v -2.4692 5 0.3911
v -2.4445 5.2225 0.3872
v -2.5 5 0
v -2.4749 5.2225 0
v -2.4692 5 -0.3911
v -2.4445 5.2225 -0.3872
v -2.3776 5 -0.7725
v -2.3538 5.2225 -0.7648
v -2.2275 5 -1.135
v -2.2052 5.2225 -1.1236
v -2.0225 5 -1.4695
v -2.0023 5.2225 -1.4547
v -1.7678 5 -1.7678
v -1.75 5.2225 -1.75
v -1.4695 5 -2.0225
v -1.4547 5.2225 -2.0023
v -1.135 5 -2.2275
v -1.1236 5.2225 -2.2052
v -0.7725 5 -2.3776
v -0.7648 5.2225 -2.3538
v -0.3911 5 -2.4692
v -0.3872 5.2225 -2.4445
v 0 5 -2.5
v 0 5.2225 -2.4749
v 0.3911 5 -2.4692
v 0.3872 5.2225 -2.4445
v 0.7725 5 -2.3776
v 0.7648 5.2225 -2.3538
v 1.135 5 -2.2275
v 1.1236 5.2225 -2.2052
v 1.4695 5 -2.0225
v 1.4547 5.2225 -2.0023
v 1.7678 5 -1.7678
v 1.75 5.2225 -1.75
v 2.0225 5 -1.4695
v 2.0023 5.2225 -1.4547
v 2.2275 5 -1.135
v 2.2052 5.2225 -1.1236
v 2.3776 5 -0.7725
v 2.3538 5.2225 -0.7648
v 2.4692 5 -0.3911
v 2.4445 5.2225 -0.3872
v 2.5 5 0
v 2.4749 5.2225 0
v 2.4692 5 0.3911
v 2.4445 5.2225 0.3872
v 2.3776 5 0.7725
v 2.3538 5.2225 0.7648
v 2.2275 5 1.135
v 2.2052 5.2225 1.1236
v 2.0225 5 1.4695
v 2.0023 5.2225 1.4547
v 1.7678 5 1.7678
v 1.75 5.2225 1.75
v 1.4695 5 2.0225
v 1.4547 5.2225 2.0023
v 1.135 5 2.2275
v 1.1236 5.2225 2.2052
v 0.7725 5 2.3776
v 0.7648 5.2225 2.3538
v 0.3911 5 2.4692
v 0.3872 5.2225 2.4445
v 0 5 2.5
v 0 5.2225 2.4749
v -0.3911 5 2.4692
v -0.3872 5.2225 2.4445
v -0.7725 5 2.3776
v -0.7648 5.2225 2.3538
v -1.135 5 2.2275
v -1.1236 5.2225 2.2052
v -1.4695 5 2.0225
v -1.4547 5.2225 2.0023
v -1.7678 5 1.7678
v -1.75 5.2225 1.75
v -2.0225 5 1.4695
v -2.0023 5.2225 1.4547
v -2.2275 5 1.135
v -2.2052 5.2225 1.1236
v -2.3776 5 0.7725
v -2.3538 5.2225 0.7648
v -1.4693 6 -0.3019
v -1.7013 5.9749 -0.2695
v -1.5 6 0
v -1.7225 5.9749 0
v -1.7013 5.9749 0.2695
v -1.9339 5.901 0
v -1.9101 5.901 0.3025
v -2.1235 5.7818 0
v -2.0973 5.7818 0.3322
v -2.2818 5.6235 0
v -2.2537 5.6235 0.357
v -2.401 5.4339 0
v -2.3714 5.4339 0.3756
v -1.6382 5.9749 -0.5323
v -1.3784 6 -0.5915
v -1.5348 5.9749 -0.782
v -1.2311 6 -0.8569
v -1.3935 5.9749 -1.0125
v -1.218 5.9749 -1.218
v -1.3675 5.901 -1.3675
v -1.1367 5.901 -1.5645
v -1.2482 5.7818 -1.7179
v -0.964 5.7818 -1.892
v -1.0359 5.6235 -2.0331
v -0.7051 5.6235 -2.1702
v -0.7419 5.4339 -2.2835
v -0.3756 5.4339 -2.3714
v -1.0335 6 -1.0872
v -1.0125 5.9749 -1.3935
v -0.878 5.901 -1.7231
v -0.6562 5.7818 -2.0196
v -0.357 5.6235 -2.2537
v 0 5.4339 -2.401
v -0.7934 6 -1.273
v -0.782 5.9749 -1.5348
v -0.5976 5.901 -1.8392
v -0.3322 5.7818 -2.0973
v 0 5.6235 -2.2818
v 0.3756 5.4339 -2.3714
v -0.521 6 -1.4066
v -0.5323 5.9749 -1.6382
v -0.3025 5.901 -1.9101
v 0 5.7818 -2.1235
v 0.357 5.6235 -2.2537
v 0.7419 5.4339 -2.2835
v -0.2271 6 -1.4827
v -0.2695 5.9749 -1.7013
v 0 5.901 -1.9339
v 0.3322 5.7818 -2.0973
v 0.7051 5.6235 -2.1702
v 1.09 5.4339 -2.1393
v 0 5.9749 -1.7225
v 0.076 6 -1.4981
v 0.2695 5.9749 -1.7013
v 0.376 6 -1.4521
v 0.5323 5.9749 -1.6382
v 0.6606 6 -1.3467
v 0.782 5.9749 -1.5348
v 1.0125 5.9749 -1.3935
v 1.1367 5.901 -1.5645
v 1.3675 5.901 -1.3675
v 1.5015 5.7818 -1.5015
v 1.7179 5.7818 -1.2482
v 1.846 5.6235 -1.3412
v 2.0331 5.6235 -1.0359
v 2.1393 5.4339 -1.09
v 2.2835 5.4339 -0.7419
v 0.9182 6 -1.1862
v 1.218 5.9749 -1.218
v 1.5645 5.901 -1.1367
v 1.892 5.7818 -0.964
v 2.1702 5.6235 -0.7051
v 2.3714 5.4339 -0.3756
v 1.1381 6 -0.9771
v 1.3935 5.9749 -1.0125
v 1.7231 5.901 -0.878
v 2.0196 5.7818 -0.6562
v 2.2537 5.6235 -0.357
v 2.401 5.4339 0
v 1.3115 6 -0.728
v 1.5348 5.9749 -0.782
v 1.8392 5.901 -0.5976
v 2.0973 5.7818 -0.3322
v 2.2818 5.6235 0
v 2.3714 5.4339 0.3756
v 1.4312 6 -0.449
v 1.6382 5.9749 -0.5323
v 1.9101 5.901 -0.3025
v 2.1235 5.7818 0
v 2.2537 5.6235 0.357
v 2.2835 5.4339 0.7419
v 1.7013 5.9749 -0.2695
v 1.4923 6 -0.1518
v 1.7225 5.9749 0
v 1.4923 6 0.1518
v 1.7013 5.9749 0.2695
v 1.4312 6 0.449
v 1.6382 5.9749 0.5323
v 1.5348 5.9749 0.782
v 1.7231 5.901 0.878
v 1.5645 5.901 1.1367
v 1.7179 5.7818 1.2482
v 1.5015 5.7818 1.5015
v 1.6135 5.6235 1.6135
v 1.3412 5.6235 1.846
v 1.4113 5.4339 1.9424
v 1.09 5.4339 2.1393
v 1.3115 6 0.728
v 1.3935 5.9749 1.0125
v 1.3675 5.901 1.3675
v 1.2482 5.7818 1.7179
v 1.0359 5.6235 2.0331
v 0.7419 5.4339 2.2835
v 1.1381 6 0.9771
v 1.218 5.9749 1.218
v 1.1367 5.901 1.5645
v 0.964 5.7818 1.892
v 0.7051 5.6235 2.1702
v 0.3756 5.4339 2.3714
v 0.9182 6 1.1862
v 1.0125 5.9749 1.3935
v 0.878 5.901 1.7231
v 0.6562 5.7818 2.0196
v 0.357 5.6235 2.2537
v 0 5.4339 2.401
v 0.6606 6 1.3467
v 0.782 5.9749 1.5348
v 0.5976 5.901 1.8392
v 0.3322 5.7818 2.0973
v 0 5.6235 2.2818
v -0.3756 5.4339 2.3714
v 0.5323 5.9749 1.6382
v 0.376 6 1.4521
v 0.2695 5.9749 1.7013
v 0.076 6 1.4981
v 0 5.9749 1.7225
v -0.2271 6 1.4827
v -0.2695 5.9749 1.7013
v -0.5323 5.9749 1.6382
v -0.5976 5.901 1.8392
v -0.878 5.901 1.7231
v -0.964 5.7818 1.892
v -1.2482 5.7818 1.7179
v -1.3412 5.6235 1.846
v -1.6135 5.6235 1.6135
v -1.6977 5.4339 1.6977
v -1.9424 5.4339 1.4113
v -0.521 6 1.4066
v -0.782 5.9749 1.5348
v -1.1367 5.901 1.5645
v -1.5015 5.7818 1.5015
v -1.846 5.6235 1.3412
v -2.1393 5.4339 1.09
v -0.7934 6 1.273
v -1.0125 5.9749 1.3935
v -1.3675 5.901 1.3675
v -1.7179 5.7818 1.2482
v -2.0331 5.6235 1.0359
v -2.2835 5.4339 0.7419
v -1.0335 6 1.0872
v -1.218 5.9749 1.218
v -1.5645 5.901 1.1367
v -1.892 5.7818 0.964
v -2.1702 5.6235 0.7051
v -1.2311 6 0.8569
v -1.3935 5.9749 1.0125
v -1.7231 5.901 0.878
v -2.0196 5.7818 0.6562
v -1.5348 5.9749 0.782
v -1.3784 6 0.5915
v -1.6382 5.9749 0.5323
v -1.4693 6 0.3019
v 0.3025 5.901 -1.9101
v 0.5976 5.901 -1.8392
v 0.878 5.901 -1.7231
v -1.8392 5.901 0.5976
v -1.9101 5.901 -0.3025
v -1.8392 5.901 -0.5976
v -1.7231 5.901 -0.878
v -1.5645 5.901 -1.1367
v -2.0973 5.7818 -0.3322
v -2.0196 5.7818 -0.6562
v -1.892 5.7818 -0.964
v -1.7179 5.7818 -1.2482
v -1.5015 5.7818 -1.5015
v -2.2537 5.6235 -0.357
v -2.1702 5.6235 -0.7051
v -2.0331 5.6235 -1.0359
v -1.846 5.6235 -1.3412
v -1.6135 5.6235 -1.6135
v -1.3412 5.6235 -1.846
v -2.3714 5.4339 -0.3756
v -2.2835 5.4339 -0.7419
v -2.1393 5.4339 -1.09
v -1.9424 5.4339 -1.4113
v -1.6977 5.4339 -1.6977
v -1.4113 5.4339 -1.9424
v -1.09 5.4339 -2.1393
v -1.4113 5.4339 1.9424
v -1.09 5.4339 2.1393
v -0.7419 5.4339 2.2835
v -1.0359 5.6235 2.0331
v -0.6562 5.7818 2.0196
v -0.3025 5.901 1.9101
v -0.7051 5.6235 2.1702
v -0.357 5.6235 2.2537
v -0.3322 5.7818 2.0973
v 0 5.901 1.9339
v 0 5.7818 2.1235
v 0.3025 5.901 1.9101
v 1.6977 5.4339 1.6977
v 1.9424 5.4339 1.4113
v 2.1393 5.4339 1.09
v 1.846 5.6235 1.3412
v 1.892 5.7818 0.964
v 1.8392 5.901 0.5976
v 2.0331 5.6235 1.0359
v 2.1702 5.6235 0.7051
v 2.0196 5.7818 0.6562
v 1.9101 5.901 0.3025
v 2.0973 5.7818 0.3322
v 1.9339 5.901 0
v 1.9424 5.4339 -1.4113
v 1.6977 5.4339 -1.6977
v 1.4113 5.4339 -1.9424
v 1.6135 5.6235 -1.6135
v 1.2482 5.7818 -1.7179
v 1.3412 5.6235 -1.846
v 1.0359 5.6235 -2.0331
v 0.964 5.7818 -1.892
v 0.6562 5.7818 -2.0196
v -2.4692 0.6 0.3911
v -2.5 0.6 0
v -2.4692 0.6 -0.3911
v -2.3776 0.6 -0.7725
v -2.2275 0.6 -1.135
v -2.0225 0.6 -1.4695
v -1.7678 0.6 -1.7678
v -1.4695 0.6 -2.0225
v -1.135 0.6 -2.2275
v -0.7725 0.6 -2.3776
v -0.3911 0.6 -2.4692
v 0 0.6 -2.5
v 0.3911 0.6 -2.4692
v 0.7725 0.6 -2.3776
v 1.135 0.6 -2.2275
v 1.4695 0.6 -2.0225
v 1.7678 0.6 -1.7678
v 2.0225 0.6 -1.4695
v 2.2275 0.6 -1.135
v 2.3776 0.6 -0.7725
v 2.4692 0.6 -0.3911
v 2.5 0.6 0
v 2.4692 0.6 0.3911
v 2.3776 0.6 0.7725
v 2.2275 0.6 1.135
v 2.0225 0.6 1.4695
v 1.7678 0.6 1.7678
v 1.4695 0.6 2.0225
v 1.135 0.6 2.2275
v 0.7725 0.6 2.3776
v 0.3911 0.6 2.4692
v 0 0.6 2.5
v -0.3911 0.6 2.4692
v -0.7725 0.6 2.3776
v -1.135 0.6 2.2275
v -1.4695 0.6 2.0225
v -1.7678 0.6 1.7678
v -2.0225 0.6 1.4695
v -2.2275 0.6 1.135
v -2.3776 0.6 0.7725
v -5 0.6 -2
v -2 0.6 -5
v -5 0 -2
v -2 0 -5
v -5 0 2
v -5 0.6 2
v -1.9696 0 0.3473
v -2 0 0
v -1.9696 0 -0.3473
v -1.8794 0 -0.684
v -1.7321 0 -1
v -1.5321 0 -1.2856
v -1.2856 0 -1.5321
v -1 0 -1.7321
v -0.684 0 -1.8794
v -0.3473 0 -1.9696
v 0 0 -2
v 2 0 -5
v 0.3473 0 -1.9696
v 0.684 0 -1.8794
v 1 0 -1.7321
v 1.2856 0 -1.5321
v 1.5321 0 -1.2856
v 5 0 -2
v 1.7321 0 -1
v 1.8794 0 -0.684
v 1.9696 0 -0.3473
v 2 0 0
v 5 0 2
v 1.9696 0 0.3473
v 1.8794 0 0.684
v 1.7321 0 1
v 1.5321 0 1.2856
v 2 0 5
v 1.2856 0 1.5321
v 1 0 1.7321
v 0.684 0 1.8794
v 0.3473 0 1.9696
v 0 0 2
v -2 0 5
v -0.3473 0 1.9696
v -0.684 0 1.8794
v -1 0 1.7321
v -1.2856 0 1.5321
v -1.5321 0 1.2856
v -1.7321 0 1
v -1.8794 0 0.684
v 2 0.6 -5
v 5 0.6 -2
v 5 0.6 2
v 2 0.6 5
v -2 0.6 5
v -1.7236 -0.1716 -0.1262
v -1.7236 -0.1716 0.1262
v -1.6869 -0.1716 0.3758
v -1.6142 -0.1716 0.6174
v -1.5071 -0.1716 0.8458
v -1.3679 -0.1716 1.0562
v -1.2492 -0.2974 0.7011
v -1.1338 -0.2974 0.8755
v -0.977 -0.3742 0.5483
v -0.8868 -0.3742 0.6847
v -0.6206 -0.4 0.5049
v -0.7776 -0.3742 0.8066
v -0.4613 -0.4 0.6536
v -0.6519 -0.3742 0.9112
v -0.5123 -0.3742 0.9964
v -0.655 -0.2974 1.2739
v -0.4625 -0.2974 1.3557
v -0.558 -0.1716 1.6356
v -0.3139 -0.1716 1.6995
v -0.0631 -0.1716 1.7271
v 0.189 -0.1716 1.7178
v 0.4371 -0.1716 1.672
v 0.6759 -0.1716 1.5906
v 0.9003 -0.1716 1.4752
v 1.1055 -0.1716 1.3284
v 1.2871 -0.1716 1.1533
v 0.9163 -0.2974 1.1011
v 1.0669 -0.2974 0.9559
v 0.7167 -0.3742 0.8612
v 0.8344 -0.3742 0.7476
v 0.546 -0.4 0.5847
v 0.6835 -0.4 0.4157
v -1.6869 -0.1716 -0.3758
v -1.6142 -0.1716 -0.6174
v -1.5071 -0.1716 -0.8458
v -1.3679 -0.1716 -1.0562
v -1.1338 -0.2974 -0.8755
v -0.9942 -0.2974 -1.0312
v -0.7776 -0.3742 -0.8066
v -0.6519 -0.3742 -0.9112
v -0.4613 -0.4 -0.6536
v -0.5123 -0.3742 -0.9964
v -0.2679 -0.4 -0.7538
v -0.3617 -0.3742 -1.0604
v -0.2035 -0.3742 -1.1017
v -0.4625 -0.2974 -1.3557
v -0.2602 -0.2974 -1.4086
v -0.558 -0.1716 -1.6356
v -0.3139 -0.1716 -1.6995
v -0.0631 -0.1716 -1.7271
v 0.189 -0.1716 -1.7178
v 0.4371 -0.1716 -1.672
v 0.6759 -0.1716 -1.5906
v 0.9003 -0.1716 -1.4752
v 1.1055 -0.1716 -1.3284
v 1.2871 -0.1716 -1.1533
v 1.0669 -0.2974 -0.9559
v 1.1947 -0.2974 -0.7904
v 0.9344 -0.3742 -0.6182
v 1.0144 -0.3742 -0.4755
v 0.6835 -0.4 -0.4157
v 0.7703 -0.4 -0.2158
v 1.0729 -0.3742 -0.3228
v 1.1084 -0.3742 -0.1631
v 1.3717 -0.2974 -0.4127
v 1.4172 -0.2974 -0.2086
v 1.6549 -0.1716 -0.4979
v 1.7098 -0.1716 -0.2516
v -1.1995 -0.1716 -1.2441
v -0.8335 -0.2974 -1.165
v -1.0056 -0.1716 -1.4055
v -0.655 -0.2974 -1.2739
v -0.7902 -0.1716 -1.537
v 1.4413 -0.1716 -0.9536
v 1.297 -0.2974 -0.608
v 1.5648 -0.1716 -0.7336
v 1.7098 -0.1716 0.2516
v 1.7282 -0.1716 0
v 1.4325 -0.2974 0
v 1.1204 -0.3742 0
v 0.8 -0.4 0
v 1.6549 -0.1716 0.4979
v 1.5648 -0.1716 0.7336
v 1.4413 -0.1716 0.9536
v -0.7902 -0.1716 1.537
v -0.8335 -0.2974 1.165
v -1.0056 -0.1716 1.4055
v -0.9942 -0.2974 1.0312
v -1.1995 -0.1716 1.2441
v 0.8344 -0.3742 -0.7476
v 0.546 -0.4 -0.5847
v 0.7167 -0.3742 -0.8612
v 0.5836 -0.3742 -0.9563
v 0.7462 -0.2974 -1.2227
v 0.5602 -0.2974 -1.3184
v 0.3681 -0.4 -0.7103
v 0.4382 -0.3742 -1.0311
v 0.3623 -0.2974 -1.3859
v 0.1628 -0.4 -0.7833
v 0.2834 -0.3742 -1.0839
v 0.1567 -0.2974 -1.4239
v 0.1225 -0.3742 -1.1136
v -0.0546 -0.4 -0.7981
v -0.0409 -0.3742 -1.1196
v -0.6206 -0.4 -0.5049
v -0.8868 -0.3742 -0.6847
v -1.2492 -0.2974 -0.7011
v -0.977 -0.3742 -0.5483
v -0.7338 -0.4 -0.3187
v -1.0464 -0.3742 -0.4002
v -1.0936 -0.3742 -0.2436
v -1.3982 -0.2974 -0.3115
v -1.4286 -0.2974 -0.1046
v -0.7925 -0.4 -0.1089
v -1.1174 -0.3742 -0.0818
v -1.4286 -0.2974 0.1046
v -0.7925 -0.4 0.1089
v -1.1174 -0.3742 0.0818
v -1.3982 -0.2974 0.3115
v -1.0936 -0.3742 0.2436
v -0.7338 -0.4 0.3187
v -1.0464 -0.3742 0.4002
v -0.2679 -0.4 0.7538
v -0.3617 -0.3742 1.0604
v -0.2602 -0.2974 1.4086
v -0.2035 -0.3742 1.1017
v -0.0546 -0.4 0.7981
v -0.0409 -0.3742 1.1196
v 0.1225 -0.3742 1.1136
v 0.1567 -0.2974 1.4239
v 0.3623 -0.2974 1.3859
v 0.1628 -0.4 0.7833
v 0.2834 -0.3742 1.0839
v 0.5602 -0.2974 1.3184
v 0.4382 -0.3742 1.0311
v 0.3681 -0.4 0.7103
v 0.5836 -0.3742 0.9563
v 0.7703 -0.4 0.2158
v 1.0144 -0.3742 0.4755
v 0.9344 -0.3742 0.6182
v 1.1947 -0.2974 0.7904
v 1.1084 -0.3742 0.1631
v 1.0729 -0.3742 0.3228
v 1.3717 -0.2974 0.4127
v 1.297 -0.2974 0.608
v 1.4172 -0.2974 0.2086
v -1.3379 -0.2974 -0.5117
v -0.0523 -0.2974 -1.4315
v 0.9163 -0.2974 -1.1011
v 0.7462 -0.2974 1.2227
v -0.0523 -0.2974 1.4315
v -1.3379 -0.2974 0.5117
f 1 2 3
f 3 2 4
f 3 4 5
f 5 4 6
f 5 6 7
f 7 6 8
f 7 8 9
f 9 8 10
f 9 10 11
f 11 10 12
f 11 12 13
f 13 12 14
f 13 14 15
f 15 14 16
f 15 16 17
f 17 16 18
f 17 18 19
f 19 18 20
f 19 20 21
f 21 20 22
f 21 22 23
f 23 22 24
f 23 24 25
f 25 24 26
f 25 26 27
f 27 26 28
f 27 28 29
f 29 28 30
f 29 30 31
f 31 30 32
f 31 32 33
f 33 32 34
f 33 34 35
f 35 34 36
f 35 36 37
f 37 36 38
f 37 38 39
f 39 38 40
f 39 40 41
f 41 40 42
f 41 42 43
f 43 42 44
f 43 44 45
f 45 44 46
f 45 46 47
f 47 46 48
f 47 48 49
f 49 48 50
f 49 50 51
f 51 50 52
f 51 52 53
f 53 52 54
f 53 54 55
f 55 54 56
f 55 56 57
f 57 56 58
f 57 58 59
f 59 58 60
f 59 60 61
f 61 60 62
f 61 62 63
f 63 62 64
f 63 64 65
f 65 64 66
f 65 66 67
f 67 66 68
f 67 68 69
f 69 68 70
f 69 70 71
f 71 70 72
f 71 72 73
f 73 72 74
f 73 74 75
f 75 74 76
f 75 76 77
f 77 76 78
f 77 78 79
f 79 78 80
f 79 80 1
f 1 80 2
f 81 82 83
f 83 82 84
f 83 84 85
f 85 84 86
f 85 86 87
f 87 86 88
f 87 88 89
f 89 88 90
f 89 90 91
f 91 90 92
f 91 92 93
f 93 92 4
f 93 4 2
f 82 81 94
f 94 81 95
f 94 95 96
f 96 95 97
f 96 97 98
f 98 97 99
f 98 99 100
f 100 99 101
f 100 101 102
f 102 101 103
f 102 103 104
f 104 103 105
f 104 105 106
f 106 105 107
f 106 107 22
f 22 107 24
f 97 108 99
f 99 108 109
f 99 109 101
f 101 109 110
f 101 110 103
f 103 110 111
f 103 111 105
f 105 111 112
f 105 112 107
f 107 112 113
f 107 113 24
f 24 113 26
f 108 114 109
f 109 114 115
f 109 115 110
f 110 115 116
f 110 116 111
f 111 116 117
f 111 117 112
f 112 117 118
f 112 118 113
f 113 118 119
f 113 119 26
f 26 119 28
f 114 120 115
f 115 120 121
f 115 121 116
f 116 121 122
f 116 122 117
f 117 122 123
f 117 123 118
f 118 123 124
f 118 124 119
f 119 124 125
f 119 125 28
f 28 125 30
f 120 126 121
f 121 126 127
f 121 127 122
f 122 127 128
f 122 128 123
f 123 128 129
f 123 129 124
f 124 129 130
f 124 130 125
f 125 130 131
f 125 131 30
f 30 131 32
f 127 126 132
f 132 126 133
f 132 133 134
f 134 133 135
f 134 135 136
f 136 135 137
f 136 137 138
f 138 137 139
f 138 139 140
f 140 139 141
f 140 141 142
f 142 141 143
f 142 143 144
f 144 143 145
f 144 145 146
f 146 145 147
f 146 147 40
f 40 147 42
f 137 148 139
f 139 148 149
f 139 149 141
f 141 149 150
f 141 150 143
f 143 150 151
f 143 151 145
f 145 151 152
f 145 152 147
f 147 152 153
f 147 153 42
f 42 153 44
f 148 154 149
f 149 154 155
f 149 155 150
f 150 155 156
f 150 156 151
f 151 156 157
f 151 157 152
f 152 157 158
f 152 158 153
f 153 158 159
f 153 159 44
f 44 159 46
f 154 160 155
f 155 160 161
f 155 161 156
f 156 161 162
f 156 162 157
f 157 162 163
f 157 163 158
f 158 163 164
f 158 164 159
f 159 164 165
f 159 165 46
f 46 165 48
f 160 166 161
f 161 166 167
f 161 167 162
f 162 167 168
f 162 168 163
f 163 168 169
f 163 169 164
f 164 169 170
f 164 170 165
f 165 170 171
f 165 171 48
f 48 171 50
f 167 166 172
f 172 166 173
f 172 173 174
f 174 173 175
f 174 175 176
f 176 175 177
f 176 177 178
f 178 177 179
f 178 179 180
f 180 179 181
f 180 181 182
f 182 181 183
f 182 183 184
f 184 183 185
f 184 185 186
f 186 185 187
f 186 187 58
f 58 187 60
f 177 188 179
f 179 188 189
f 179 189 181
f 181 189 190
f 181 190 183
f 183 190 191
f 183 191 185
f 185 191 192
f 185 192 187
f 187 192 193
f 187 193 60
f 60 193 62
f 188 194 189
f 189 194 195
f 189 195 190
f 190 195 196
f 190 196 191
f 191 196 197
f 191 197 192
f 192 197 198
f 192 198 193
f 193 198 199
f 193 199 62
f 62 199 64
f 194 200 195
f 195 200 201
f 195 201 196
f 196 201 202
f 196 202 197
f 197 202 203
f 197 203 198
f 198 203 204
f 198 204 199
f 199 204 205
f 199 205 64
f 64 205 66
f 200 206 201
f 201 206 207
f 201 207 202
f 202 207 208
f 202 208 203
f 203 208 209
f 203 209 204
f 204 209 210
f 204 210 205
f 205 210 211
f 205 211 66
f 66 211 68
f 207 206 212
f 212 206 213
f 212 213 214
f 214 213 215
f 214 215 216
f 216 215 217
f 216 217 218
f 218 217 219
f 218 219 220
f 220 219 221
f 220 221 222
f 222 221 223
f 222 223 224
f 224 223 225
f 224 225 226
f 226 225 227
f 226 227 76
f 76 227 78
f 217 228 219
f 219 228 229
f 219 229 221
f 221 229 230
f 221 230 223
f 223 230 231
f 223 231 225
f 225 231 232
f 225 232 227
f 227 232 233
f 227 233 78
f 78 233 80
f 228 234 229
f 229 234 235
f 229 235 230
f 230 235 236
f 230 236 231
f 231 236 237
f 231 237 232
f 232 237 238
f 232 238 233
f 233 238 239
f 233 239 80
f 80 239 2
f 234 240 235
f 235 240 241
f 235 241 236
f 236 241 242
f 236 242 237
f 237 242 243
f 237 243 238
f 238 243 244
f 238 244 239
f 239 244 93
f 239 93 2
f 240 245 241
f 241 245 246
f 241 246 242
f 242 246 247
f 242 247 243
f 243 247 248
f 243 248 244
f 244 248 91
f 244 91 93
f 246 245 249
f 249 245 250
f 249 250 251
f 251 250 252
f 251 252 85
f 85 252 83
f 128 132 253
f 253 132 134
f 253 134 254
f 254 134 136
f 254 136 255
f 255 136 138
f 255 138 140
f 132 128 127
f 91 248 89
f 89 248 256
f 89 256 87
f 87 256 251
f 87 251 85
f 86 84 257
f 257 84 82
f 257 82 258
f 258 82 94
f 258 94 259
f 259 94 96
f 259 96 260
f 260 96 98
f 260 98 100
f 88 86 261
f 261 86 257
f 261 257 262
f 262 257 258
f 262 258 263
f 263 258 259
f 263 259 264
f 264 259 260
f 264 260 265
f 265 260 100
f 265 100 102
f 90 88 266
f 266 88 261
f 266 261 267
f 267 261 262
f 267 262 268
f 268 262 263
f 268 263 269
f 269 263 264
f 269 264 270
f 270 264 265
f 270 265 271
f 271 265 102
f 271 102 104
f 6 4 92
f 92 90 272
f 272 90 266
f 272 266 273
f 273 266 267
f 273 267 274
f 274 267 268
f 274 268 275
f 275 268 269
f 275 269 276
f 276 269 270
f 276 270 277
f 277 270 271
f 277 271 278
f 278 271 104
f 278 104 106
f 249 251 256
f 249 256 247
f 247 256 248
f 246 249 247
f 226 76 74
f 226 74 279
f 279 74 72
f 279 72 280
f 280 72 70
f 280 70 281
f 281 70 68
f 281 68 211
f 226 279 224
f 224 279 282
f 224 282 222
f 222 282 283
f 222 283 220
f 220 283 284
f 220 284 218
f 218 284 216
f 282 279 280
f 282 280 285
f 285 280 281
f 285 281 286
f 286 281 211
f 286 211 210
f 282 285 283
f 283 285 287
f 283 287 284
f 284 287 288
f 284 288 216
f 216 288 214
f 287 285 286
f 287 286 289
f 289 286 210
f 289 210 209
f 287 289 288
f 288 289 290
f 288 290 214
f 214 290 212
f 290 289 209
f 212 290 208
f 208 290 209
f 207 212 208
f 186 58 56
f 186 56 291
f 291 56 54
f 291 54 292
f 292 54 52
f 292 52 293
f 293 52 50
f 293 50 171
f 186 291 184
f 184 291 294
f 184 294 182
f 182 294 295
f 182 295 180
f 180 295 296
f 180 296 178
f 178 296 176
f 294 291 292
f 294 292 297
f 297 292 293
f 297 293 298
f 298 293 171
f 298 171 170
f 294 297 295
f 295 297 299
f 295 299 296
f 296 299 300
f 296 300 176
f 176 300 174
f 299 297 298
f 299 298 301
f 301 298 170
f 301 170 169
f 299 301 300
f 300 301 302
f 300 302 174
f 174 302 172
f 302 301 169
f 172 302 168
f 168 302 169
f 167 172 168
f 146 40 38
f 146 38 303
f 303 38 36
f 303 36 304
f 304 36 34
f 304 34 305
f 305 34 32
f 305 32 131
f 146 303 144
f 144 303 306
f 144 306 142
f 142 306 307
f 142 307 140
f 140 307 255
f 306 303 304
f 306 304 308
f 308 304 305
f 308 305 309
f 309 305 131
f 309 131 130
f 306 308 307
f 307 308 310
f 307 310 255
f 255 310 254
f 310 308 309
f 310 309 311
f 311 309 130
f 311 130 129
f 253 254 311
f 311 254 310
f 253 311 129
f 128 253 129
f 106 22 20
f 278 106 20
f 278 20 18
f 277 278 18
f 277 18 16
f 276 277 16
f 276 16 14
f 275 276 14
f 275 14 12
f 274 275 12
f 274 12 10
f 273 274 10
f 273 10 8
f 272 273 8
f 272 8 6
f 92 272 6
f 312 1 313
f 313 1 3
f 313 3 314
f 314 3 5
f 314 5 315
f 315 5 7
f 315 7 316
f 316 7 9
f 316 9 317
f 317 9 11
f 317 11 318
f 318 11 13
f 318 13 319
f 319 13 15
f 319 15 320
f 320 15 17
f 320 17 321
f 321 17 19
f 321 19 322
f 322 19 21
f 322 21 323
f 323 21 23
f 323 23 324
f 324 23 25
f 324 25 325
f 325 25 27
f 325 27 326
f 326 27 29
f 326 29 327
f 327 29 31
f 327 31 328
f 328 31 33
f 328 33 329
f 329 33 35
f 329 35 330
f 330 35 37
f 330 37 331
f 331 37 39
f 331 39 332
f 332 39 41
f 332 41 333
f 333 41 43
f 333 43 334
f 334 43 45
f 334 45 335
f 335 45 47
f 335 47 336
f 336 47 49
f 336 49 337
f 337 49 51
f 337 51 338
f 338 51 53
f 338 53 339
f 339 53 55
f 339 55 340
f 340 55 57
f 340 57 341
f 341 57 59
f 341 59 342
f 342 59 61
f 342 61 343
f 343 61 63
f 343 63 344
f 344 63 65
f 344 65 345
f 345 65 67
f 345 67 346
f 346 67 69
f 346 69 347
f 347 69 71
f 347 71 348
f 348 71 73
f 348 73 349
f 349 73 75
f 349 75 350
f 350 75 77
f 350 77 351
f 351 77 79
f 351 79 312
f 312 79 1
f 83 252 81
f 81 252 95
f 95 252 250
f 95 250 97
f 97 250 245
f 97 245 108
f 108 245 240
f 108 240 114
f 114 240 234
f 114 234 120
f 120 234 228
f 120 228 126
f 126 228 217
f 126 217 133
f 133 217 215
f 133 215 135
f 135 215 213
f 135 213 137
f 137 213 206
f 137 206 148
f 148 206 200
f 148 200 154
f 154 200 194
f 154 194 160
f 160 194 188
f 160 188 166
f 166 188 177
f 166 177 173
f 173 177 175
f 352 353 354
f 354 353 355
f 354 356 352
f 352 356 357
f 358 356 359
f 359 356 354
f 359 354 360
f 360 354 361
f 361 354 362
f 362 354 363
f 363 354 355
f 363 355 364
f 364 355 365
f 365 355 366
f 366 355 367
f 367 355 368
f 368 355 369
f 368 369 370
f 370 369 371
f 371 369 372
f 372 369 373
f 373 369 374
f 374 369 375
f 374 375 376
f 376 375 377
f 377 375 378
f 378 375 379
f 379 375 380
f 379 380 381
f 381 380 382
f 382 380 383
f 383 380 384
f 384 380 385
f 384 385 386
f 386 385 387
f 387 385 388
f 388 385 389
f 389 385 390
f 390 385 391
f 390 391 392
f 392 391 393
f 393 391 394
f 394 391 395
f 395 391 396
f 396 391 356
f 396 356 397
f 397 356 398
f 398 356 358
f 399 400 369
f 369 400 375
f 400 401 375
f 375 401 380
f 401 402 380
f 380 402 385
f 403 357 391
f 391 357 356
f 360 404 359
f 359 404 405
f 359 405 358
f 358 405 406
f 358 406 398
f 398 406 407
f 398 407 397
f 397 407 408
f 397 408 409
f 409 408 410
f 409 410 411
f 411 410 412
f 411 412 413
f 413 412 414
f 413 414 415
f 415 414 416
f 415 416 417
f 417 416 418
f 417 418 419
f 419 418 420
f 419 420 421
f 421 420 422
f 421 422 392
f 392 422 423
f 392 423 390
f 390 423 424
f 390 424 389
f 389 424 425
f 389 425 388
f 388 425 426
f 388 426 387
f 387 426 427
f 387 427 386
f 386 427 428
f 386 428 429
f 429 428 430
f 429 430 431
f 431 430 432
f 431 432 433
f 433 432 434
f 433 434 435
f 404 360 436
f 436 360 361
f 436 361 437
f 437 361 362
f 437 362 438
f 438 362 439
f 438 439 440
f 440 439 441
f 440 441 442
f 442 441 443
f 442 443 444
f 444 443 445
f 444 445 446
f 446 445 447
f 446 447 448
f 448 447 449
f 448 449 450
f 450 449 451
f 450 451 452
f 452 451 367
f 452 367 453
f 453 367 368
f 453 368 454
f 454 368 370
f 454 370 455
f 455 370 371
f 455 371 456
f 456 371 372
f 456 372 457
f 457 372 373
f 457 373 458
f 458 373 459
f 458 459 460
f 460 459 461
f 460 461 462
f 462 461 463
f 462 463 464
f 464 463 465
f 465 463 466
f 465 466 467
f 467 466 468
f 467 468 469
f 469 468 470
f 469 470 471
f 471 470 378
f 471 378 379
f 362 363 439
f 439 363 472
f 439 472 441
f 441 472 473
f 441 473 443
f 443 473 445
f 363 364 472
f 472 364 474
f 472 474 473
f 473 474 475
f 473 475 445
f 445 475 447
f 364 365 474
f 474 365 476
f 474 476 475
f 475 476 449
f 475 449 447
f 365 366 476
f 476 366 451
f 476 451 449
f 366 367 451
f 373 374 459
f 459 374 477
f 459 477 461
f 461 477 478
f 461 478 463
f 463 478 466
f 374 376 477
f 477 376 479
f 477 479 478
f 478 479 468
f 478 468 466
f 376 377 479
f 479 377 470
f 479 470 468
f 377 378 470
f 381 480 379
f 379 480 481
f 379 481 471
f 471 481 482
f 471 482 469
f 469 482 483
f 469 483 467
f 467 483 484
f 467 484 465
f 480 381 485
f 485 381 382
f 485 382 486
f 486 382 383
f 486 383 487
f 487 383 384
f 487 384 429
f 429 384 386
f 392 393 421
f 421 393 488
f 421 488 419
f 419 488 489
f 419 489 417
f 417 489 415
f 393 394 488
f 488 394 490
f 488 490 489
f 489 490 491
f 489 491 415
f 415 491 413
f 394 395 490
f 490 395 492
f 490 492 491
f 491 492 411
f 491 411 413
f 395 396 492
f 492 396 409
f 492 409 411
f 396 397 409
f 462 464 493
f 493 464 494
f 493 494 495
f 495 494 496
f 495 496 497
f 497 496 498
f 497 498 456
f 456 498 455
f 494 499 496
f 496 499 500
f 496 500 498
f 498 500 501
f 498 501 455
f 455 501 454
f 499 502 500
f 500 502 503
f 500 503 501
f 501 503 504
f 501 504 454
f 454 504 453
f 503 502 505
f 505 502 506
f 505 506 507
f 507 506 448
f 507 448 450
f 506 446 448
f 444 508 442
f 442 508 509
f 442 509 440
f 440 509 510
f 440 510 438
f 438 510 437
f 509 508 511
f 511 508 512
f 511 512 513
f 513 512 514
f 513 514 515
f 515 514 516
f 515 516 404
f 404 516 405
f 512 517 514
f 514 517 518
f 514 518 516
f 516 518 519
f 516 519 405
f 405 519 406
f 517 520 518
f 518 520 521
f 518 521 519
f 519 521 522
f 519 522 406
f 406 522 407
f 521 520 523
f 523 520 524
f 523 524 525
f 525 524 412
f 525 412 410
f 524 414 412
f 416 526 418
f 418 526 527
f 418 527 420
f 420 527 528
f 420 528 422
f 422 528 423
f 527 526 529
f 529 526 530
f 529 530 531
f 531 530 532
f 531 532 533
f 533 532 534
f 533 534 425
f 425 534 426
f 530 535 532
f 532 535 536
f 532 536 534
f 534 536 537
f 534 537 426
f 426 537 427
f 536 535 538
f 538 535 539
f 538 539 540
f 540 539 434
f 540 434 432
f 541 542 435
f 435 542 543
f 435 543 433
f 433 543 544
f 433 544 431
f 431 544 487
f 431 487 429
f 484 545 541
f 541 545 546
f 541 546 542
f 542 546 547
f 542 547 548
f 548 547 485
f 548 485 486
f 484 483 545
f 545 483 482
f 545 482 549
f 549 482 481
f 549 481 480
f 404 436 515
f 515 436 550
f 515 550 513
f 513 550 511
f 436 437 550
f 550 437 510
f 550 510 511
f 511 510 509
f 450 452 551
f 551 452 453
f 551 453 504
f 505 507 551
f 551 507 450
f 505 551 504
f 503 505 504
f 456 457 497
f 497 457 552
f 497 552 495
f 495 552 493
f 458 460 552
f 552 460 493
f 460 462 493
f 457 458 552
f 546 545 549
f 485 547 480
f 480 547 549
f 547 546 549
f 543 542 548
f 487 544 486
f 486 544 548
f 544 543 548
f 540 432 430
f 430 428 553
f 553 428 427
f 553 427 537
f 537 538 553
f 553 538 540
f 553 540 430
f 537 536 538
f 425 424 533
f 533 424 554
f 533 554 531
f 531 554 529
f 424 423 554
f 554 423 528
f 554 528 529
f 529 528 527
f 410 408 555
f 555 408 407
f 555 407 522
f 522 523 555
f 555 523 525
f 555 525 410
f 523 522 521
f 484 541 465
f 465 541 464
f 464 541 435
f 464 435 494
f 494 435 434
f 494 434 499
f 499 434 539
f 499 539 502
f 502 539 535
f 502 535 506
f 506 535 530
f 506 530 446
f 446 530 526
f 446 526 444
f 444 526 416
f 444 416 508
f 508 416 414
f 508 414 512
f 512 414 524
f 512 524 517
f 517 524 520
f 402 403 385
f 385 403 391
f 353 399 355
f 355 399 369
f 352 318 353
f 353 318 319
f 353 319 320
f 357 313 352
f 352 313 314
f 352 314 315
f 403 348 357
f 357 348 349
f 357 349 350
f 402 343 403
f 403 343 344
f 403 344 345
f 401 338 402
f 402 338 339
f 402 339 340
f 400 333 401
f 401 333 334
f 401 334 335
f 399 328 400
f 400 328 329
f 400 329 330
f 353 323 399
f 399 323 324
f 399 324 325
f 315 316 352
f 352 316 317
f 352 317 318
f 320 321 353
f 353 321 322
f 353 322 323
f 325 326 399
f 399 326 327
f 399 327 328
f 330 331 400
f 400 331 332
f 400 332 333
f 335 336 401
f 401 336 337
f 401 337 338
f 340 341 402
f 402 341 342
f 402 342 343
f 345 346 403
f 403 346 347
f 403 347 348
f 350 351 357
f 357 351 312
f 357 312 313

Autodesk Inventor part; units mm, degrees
ref_plane "YZ Plane" through (0, 0, 0) normal (1, 0, 0) x (0, 1, 0)
ref_plane "XZ Plane" through (0, 0, 0) normal (0, 1, 0) x (-1, 0, 0)
ref_plane "XY Plane" through (0, 0, 0) normal (0, 0, 1) x (1, 0, 0)
sketch "Szkic1" plane through (0, 0, 0) normal (0, 1, 0) x (-1, 0, 0)
  circle A0 centre (0, 0) radius 2.5
  line L0 (-5, 5) -> (5, 5)
  line L1 (5, 5) -> (5, -5)
  line L2 (5, -5) -> (-5, -5)
  line L3 (-5, -5) -> (-5, 5)
  line L4 (-5, 5) -> (5, -5) construction
  line L5 (5, 5) -> (-5, -5) construction
  circle A1 centre (0, 0) radius 2
  dimension "d0" = 5
  dimension "d1" = 10
  dimension "d2" = 10
  dimension "d7" = 4
extrude "Wyciągnięcie proste1" add sketch "Szkic1" along normal blind 0.6 contours L0 L1 L2 L3
extrude "Wyciągnięcie proste2" add sketch "Szkic1" along normal blind 6 contours A0 | A1
extrude "Wyciągnięcie proste3" add sketch "Szkic1" against normal blind 0.4 contours A1
fillet "Zaokrąglenie1" radius 2 1 edges at (2, -0.4, 0)
chamfer "Faza1" distance 3 angle 45 4 edges at (-5, 0.3, 5) (5, 0.3, 5) (5, 0.3, -5) (-5, 0.3, -5)
fillet "Zaokrąglenie2" radius 1 1 edges at (2.5, 6, 0)
properties part number "button"
